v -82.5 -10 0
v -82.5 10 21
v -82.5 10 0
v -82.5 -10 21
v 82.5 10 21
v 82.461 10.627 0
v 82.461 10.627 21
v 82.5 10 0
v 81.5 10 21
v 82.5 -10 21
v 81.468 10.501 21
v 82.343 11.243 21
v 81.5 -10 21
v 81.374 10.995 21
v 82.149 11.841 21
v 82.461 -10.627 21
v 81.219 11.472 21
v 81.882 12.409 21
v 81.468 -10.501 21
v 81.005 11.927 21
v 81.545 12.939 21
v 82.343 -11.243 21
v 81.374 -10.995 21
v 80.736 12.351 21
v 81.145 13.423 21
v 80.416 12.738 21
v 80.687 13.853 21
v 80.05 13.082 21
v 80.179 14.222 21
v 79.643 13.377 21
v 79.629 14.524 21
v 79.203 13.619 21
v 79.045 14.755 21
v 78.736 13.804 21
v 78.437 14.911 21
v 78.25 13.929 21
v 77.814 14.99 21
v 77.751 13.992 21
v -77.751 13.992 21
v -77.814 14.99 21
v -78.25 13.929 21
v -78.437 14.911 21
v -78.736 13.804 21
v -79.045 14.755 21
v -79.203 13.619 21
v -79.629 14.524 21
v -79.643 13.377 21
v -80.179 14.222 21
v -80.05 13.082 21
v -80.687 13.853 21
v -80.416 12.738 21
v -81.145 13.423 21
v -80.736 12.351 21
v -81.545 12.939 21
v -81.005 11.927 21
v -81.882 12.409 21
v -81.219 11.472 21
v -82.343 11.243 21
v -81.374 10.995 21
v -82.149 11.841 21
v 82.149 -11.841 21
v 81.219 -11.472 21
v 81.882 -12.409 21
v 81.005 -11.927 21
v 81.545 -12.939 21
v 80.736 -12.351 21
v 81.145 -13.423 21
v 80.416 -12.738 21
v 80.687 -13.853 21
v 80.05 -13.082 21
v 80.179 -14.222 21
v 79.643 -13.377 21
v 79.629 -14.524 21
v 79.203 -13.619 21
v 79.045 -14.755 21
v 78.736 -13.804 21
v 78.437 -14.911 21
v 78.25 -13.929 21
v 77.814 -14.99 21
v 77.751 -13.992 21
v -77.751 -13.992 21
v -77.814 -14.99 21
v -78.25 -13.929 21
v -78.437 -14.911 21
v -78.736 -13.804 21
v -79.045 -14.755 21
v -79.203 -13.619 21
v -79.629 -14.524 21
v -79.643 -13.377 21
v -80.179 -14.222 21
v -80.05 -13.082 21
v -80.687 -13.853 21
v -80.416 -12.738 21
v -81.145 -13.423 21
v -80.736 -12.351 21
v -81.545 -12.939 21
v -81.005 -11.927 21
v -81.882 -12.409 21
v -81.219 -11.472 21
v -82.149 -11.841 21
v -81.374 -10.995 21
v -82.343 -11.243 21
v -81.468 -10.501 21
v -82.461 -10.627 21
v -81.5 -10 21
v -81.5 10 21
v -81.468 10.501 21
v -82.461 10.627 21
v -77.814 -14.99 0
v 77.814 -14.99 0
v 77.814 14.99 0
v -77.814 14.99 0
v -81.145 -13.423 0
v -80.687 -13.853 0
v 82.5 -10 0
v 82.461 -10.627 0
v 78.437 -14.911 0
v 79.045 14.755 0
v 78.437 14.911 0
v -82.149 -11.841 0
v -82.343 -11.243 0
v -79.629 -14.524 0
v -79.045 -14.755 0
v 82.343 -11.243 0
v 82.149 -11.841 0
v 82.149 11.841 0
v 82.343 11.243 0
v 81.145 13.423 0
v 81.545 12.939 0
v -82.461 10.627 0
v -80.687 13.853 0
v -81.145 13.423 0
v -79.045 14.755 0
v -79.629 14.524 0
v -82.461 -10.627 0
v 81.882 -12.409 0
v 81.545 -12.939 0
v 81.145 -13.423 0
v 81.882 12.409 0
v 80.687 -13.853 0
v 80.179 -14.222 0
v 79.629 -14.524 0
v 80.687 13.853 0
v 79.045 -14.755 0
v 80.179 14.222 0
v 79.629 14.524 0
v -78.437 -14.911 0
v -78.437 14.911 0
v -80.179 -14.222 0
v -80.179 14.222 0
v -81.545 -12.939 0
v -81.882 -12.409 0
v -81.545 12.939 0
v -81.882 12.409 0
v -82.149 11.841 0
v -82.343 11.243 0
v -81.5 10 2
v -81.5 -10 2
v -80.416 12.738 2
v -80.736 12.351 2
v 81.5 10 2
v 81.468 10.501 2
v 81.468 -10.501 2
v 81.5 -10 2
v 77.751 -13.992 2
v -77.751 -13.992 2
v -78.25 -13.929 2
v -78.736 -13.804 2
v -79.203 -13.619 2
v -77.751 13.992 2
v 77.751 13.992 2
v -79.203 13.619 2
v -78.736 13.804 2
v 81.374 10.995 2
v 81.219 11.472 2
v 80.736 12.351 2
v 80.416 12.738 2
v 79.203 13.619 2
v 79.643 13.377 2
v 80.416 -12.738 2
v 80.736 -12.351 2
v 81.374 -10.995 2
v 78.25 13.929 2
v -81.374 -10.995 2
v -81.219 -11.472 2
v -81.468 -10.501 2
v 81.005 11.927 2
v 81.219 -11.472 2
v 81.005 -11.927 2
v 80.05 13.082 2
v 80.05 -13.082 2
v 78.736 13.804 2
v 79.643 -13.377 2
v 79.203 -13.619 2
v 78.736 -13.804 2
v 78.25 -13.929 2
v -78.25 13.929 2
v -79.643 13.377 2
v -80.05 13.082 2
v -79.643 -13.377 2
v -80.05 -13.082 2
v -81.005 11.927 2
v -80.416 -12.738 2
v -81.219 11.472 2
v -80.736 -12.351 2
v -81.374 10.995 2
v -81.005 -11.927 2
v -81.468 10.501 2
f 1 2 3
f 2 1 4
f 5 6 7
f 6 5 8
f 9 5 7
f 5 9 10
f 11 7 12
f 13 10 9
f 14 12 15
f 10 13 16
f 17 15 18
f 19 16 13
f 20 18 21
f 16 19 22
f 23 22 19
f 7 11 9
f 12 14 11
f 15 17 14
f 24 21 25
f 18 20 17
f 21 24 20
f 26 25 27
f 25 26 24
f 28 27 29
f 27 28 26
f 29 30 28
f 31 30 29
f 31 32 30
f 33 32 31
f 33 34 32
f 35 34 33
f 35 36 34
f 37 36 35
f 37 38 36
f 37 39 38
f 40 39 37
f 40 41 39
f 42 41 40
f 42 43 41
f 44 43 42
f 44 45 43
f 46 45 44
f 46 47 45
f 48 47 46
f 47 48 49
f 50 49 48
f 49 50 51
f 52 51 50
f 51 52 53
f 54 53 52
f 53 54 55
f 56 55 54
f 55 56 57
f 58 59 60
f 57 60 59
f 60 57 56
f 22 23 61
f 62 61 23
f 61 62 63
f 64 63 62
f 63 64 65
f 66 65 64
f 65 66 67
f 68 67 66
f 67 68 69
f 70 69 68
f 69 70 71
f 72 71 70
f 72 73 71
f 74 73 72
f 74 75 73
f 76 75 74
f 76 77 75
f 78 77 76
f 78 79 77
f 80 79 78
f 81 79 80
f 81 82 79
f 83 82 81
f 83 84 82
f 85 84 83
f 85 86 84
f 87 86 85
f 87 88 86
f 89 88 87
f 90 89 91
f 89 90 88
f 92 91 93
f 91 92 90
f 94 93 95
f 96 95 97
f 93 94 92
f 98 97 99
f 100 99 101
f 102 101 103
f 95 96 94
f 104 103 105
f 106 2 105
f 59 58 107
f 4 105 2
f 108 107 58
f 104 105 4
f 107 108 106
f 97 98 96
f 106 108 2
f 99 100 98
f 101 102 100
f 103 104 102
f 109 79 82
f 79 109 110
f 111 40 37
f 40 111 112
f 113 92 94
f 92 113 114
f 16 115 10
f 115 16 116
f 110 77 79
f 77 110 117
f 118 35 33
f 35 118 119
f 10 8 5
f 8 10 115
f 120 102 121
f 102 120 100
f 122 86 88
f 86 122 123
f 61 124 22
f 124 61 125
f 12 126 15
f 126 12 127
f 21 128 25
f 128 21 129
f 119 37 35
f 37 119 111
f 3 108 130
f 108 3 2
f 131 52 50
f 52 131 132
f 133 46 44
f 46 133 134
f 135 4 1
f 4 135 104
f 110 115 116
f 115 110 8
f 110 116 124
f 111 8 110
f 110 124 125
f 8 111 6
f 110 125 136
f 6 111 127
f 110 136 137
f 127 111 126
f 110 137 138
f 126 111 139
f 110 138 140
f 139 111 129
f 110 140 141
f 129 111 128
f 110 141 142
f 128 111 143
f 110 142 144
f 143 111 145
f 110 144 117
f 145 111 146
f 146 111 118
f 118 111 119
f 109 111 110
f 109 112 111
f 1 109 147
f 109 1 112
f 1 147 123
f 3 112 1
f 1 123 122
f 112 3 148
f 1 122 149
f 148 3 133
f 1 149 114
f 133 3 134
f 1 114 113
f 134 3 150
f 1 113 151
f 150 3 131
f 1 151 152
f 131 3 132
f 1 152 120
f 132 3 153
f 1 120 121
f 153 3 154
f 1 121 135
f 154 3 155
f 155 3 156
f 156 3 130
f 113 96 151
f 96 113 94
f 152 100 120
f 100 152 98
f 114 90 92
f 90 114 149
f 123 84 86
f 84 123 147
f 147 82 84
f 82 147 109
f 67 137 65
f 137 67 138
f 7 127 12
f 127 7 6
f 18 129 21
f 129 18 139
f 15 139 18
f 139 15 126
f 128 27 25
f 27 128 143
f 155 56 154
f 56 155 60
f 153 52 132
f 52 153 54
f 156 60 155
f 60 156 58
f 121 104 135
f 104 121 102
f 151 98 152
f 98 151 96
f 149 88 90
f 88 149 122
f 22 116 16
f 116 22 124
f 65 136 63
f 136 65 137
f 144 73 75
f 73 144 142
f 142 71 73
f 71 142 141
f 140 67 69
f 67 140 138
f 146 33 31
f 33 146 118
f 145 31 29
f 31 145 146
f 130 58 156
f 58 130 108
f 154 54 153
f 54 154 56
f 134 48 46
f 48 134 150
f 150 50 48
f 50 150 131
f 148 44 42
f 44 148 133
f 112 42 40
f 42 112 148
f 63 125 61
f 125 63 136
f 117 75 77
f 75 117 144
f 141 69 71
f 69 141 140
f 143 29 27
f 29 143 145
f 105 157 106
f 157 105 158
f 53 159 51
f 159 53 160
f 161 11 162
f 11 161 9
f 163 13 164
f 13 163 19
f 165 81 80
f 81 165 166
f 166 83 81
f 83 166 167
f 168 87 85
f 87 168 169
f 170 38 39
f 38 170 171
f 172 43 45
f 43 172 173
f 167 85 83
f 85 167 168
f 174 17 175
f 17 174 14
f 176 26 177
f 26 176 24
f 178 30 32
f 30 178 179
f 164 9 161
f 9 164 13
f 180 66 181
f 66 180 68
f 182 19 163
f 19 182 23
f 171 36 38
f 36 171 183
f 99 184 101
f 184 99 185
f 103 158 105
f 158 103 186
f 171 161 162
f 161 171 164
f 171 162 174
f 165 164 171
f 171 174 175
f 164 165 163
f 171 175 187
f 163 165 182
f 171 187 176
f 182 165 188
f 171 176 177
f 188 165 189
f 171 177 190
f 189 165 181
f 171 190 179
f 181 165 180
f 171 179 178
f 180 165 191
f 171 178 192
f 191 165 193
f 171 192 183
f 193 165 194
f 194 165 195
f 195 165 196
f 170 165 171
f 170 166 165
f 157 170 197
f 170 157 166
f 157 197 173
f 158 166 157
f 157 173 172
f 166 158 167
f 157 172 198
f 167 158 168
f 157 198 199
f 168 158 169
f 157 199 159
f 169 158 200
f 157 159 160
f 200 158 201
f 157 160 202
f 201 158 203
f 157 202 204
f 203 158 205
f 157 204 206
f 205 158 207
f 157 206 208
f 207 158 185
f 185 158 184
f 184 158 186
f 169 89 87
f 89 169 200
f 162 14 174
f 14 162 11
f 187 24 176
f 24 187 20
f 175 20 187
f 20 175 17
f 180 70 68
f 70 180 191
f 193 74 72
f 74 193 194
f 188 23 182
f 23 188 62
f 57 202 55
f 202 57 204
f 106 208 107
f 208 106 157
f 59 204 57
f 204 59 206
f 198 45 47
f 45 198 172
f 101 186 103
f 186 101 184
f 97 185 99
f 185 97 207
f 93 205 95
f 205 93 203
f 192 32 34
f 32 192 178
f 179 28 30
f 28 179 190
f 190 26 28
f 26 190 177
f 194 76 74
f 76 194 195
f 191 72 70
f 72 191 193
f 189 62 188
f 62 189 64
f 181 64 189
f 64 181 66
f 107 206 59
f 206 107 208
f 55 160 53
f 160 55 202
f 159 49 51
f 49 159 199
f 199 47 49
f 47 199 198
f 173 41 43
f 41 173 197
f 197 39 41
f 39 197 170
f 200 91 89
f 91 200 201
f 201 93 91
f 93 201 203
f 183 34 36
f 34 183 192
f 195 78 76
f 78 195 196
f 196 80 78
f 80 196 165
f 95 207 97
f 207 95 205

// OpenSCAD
$fn = 50;


difference() {
	union() {
		hull() {
			translate(v = [-77.5000000000, 10.0000000000, 0]) {
				cylinder(h = 21, r = 5);
			}
			translate(v = [77.5000000000, 10.0000000000, 0]) {
				cylinder(h = 21, r = 5);
			}
			translate(v = [-77.5000000000, -10.0000000000, 0]) {
				cylinder(h = 21, r = 5);
			}
			translate(v = [77.5000000000, -10.0000000000, 0]) {
				cylinder(h = 21, r = 5);
			}
		}
	}
	union() {
		translate(v = [0, 0, 2]) {
			hull() {
				translate(v = [-77.5000000000, 10.0000000000, 0]) {
					cylinder(h = 19, r = 4);
				}
				translate(v = [77.5000000000, 10.0000000000, 0]) {
					cylinder(h = 19, r = 4);
				}
				translate(v = [-77.5000000000, -10.0000000000, 0]) {
					cylinder(h = 19, r = 4);
				}
				translate(v = [77.5000000000, -10.0000000000, 0]) {
					cylinder(h = 19, r = 4);
				}
			}
		}
	}
}
